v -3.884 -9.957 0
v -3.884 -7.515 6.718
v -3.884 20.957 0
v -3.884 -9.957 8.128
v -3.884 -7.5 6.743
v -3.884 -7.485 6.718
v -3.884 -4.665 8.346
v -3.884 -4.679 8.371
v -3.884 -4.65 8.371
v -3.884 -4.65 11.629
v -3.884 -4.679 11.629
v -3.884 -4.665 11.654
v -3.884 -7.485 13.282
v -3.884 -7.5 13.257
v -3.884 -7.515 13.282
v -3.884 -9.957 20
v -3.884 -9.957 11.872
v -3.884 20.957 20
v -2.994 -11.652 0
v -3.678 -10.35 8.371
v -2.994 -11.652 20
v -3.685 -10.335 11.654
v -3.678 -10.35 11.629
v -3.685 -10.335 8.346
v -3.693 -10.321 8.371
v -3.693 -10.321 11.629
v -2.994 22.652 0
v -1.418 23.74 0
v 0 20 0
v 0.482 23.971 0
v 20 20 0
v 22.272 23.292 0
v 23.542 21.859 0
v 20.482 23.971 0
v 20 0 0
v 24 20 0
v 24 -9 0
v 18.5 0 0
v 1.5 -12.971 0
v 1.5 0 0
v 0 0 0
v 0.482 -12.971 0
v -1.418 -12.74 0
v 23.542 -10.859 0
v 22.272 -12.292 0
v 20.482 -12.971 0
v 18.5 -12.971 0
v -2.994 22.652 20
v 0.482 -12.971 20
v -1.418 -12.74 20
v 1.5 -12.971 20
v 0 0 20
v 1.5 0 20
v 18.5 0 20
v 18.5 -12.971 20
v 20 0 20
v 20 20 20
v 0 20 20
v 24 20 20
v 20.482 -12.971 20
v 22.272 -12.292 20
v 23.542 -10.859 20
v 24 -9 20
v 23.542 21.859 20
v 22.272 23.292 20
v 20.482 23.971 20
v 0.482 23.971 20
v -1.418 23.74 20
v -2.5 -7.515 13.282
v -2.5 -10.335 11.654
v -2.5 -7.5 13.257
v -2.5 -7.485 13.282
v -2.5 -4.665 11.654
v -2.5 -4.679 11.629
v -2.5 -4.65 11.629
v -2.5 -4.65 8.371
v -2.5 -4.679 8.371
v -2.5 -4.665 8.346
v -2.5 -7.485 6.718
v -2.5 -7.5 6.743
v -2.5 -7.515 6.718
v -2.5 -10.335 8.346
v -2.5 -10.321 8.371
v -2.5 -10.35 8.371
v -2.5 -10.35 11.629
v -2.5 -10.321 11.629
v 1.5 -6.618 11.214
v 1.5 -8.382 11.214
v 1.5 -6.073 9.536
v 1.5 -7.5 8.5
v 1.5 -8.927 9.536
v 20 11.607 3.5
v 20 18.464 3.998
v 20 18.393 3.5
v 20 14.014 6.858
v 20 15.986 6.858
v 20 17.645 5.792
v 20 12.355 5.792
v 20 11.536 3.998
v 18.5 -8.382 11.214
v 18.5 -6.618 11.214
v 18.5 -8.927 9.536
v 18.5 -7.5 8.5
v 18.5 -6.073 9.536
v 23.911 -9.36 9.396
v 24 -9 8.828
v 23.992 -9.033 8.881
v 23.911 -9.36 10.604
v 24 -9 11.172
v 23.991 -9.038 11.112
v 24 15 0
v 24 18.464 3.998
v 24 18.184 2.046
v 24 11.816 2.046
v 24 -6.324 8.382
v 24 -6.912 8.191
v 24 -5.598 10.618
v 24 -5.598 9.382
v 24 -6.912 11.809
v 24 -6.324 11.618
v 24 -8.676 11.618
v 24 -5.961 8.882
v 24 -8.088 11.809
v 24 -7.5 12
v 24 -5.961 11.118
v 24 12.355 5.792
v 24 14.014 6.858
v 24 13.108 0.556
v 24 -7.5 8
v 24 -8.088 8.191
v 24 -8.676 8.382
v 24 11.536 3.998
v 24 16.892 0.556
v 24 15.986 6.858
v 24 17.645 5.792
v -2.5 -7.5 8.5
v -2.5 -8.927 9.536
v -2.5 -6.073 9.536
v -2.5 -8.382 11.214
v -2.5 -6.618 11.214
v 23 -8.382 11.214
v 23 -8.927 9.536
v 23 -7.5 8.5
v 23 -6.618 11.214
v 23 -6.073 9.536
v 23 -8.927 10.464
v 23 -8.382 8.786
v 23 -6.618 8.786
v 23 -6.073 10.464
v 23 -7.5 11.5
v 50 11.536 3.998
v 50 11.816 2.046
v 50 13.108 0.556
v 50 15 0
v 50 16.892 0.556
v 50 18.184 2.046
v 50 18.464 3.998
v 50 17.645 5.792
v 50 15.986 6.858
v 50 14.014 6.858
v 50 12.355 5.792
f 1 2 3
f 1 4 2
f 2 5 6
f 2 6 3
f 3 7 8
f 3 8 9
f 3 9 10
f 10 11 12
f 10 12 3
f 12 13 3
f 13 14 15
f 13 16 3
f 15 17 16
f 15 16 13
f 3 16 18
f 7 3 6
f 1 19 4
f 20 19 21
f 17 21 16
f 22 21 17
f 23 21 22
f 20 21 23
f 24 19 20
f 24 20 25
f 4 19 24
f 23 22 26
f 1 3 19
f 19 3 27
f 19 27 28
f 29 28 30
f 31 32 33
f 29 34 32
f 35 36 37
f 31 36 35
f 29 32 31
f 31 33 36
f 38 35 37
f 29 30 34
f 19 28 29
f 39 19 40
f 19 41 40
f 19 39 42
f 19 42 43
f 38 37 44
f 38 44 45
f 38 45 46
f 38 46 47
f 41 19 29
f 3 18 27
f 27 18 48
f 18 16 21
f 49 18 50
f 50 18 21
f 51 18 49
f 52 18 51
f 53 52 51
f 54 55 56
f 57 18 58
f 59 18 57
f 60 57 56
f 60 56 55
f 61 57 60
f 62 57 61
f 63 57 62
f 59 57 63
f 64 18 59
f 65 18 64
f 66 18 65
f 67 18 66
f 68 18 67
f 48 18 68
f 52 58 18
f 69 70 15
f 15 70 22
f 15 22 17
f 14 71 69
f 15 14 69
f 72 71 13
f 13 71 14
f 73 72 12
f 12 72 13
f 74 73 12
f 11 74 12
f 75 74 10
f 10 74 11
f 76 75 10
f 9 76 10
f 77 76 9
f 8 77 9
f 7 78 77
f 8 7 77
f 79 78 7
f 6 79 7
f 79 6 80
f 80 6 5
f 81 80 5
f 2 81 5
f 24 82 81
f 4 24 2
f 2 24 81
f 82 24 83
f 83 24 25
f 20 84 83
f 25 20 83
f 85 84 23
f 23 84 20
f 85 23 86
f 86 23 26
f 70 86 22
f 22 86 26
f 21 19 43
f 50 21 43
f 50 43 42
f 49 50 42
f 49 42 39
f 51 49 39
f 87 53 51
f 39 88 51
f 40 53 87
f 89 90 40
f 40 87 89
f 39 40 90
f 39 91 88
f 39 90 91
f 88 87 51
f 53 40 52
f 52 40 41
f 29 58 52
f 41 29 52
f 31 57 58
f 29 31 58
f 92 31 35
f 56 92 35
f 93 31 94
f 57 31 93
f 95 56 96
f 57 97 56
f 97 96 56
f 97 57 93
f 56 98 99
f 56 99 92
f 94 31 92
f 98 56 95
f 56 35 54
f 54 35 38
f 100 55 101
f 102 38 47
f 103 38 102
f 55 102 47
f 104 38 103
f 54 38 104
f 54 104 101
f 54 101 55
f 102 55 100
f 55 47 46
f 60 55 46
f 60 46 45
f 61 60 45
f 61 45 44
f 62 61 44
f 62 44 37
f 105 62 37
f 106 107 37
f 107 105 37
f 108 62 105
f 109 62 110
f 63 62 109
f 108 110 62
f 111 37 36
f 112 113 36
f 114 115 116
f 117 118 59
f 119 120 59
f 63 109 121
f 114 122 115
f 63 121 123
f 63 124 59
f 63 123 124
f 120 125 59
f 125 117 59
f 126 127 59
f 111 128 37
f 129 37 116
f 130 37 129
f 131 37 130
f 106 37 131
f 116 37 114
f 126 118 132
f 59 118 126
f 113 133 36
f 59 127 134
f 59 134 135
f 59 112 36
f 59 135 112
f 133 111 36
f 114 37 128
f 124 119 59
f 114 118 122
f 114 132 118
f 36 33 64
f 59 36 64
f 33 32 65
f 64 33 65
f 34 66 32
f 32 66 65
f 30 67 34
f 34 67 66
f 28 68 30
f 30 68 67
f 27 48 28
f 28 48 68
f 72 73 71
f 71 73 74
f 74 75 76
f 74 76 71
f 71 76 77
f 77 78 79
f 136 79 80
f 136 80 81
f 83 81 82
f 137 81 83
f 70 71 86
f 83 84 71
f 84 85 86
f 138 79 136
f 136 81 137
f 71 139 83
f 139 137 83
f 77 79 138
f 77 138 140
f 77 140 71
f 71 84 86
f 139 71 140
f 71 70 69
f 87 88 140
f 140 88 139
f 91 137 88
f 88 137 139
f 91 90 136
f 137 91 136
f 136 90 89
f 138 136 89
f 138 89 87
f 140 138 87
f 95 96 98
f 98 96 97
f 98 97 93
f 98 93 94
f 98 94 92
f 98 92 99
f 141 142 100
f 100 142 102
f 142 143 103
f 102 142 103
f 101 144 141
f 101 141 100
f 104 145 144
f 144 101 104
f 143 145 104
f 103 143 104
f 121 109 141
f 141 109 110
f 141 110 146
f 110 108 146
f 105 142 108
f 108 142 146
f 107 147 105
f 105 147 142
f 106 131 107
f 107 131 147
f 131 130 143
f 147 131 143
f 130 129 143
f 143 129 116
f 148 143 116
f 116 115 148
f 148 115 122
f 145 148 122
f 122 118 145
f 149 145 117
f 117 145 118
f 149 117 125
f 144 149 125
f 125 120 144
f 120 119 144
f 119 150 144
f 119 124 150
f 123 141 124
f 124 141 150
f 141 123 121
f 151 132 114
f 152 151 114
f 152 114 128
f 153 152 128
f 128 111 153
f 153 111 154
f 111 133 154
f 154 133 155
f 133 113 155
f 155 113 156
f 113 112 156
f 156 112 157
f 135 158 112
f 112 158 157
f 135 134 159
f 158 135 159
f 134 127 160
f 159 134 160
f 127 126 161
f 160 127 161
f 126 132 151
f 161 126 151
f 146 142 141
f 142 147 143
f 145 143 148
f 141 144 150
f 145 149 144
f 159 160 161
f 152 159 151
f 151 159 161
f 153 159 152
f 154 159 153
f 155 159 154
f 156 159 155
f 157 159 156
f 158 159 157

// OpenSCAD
width = 20;

// size is the XY plane size, height in Z
module hexagon(size, height) {
  boxWidth = size/1.75;
  for (r = [-60, 0, 60]) rotate([0,0,r]) cube([boxWidth, size, height], true);
}

module holder() {


difference() {

union() {

translate([0, -9, 0])
minkowski()
{
   cube([20,29,width-1]);
   cylinder(r=4,h=1);
}


}

// hole for aluminium extrusion
   translate([0, 0, -1])
   cube([20,20,22]);

// for screw part
   translate([1.5, -16, -1])
   cube([17,20,22]);


// screw holes

translate([-4,-7.5, width/2])
rotate(a=90, v=[0,1,0])
hexagon(5.7, 3);

translate([23,-7.5, width/2])
rotate(a=90, v=[0,1,0])
cylinder(r2=3, r1=1.5, h=3);

translate([-10,-7.5, width/2])
rotate(a=90, v=[0,1,0])
cylinder(r=1.5, h=40);

}

}

translate([20,15,3.5])
rotate([0,90,0])
cylinder(r=3.5, h=30);

holder();
